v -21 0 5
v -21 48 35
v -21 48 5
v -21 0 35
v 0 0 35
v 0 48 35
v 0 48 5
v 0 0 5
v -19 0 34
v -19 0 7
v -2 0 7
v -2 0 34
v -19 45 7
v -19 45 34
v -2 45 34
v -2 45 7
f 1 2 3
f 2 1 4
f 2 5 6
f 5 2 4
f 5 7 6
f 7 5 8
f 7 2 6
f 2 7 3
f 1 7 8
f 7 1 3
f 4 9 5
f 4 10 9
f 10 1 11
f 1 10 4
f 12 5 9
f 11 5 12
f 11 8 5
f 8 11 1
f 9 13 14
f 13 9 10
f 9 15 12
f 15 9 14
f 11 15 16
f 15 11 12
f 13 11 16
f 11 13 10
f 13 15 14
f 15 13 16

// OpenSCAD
difference() {
    union() {
        translate([-21, 0, 5]) {
            cube([21, 48, 30]);
        }
        //translate([-1, 2, 5]) {
        //    cube([2, 44, 2]);
        //}
    }
    
    translate([-19, -1, 7]) {
        cube([17, 46, 27]);
    }
}
